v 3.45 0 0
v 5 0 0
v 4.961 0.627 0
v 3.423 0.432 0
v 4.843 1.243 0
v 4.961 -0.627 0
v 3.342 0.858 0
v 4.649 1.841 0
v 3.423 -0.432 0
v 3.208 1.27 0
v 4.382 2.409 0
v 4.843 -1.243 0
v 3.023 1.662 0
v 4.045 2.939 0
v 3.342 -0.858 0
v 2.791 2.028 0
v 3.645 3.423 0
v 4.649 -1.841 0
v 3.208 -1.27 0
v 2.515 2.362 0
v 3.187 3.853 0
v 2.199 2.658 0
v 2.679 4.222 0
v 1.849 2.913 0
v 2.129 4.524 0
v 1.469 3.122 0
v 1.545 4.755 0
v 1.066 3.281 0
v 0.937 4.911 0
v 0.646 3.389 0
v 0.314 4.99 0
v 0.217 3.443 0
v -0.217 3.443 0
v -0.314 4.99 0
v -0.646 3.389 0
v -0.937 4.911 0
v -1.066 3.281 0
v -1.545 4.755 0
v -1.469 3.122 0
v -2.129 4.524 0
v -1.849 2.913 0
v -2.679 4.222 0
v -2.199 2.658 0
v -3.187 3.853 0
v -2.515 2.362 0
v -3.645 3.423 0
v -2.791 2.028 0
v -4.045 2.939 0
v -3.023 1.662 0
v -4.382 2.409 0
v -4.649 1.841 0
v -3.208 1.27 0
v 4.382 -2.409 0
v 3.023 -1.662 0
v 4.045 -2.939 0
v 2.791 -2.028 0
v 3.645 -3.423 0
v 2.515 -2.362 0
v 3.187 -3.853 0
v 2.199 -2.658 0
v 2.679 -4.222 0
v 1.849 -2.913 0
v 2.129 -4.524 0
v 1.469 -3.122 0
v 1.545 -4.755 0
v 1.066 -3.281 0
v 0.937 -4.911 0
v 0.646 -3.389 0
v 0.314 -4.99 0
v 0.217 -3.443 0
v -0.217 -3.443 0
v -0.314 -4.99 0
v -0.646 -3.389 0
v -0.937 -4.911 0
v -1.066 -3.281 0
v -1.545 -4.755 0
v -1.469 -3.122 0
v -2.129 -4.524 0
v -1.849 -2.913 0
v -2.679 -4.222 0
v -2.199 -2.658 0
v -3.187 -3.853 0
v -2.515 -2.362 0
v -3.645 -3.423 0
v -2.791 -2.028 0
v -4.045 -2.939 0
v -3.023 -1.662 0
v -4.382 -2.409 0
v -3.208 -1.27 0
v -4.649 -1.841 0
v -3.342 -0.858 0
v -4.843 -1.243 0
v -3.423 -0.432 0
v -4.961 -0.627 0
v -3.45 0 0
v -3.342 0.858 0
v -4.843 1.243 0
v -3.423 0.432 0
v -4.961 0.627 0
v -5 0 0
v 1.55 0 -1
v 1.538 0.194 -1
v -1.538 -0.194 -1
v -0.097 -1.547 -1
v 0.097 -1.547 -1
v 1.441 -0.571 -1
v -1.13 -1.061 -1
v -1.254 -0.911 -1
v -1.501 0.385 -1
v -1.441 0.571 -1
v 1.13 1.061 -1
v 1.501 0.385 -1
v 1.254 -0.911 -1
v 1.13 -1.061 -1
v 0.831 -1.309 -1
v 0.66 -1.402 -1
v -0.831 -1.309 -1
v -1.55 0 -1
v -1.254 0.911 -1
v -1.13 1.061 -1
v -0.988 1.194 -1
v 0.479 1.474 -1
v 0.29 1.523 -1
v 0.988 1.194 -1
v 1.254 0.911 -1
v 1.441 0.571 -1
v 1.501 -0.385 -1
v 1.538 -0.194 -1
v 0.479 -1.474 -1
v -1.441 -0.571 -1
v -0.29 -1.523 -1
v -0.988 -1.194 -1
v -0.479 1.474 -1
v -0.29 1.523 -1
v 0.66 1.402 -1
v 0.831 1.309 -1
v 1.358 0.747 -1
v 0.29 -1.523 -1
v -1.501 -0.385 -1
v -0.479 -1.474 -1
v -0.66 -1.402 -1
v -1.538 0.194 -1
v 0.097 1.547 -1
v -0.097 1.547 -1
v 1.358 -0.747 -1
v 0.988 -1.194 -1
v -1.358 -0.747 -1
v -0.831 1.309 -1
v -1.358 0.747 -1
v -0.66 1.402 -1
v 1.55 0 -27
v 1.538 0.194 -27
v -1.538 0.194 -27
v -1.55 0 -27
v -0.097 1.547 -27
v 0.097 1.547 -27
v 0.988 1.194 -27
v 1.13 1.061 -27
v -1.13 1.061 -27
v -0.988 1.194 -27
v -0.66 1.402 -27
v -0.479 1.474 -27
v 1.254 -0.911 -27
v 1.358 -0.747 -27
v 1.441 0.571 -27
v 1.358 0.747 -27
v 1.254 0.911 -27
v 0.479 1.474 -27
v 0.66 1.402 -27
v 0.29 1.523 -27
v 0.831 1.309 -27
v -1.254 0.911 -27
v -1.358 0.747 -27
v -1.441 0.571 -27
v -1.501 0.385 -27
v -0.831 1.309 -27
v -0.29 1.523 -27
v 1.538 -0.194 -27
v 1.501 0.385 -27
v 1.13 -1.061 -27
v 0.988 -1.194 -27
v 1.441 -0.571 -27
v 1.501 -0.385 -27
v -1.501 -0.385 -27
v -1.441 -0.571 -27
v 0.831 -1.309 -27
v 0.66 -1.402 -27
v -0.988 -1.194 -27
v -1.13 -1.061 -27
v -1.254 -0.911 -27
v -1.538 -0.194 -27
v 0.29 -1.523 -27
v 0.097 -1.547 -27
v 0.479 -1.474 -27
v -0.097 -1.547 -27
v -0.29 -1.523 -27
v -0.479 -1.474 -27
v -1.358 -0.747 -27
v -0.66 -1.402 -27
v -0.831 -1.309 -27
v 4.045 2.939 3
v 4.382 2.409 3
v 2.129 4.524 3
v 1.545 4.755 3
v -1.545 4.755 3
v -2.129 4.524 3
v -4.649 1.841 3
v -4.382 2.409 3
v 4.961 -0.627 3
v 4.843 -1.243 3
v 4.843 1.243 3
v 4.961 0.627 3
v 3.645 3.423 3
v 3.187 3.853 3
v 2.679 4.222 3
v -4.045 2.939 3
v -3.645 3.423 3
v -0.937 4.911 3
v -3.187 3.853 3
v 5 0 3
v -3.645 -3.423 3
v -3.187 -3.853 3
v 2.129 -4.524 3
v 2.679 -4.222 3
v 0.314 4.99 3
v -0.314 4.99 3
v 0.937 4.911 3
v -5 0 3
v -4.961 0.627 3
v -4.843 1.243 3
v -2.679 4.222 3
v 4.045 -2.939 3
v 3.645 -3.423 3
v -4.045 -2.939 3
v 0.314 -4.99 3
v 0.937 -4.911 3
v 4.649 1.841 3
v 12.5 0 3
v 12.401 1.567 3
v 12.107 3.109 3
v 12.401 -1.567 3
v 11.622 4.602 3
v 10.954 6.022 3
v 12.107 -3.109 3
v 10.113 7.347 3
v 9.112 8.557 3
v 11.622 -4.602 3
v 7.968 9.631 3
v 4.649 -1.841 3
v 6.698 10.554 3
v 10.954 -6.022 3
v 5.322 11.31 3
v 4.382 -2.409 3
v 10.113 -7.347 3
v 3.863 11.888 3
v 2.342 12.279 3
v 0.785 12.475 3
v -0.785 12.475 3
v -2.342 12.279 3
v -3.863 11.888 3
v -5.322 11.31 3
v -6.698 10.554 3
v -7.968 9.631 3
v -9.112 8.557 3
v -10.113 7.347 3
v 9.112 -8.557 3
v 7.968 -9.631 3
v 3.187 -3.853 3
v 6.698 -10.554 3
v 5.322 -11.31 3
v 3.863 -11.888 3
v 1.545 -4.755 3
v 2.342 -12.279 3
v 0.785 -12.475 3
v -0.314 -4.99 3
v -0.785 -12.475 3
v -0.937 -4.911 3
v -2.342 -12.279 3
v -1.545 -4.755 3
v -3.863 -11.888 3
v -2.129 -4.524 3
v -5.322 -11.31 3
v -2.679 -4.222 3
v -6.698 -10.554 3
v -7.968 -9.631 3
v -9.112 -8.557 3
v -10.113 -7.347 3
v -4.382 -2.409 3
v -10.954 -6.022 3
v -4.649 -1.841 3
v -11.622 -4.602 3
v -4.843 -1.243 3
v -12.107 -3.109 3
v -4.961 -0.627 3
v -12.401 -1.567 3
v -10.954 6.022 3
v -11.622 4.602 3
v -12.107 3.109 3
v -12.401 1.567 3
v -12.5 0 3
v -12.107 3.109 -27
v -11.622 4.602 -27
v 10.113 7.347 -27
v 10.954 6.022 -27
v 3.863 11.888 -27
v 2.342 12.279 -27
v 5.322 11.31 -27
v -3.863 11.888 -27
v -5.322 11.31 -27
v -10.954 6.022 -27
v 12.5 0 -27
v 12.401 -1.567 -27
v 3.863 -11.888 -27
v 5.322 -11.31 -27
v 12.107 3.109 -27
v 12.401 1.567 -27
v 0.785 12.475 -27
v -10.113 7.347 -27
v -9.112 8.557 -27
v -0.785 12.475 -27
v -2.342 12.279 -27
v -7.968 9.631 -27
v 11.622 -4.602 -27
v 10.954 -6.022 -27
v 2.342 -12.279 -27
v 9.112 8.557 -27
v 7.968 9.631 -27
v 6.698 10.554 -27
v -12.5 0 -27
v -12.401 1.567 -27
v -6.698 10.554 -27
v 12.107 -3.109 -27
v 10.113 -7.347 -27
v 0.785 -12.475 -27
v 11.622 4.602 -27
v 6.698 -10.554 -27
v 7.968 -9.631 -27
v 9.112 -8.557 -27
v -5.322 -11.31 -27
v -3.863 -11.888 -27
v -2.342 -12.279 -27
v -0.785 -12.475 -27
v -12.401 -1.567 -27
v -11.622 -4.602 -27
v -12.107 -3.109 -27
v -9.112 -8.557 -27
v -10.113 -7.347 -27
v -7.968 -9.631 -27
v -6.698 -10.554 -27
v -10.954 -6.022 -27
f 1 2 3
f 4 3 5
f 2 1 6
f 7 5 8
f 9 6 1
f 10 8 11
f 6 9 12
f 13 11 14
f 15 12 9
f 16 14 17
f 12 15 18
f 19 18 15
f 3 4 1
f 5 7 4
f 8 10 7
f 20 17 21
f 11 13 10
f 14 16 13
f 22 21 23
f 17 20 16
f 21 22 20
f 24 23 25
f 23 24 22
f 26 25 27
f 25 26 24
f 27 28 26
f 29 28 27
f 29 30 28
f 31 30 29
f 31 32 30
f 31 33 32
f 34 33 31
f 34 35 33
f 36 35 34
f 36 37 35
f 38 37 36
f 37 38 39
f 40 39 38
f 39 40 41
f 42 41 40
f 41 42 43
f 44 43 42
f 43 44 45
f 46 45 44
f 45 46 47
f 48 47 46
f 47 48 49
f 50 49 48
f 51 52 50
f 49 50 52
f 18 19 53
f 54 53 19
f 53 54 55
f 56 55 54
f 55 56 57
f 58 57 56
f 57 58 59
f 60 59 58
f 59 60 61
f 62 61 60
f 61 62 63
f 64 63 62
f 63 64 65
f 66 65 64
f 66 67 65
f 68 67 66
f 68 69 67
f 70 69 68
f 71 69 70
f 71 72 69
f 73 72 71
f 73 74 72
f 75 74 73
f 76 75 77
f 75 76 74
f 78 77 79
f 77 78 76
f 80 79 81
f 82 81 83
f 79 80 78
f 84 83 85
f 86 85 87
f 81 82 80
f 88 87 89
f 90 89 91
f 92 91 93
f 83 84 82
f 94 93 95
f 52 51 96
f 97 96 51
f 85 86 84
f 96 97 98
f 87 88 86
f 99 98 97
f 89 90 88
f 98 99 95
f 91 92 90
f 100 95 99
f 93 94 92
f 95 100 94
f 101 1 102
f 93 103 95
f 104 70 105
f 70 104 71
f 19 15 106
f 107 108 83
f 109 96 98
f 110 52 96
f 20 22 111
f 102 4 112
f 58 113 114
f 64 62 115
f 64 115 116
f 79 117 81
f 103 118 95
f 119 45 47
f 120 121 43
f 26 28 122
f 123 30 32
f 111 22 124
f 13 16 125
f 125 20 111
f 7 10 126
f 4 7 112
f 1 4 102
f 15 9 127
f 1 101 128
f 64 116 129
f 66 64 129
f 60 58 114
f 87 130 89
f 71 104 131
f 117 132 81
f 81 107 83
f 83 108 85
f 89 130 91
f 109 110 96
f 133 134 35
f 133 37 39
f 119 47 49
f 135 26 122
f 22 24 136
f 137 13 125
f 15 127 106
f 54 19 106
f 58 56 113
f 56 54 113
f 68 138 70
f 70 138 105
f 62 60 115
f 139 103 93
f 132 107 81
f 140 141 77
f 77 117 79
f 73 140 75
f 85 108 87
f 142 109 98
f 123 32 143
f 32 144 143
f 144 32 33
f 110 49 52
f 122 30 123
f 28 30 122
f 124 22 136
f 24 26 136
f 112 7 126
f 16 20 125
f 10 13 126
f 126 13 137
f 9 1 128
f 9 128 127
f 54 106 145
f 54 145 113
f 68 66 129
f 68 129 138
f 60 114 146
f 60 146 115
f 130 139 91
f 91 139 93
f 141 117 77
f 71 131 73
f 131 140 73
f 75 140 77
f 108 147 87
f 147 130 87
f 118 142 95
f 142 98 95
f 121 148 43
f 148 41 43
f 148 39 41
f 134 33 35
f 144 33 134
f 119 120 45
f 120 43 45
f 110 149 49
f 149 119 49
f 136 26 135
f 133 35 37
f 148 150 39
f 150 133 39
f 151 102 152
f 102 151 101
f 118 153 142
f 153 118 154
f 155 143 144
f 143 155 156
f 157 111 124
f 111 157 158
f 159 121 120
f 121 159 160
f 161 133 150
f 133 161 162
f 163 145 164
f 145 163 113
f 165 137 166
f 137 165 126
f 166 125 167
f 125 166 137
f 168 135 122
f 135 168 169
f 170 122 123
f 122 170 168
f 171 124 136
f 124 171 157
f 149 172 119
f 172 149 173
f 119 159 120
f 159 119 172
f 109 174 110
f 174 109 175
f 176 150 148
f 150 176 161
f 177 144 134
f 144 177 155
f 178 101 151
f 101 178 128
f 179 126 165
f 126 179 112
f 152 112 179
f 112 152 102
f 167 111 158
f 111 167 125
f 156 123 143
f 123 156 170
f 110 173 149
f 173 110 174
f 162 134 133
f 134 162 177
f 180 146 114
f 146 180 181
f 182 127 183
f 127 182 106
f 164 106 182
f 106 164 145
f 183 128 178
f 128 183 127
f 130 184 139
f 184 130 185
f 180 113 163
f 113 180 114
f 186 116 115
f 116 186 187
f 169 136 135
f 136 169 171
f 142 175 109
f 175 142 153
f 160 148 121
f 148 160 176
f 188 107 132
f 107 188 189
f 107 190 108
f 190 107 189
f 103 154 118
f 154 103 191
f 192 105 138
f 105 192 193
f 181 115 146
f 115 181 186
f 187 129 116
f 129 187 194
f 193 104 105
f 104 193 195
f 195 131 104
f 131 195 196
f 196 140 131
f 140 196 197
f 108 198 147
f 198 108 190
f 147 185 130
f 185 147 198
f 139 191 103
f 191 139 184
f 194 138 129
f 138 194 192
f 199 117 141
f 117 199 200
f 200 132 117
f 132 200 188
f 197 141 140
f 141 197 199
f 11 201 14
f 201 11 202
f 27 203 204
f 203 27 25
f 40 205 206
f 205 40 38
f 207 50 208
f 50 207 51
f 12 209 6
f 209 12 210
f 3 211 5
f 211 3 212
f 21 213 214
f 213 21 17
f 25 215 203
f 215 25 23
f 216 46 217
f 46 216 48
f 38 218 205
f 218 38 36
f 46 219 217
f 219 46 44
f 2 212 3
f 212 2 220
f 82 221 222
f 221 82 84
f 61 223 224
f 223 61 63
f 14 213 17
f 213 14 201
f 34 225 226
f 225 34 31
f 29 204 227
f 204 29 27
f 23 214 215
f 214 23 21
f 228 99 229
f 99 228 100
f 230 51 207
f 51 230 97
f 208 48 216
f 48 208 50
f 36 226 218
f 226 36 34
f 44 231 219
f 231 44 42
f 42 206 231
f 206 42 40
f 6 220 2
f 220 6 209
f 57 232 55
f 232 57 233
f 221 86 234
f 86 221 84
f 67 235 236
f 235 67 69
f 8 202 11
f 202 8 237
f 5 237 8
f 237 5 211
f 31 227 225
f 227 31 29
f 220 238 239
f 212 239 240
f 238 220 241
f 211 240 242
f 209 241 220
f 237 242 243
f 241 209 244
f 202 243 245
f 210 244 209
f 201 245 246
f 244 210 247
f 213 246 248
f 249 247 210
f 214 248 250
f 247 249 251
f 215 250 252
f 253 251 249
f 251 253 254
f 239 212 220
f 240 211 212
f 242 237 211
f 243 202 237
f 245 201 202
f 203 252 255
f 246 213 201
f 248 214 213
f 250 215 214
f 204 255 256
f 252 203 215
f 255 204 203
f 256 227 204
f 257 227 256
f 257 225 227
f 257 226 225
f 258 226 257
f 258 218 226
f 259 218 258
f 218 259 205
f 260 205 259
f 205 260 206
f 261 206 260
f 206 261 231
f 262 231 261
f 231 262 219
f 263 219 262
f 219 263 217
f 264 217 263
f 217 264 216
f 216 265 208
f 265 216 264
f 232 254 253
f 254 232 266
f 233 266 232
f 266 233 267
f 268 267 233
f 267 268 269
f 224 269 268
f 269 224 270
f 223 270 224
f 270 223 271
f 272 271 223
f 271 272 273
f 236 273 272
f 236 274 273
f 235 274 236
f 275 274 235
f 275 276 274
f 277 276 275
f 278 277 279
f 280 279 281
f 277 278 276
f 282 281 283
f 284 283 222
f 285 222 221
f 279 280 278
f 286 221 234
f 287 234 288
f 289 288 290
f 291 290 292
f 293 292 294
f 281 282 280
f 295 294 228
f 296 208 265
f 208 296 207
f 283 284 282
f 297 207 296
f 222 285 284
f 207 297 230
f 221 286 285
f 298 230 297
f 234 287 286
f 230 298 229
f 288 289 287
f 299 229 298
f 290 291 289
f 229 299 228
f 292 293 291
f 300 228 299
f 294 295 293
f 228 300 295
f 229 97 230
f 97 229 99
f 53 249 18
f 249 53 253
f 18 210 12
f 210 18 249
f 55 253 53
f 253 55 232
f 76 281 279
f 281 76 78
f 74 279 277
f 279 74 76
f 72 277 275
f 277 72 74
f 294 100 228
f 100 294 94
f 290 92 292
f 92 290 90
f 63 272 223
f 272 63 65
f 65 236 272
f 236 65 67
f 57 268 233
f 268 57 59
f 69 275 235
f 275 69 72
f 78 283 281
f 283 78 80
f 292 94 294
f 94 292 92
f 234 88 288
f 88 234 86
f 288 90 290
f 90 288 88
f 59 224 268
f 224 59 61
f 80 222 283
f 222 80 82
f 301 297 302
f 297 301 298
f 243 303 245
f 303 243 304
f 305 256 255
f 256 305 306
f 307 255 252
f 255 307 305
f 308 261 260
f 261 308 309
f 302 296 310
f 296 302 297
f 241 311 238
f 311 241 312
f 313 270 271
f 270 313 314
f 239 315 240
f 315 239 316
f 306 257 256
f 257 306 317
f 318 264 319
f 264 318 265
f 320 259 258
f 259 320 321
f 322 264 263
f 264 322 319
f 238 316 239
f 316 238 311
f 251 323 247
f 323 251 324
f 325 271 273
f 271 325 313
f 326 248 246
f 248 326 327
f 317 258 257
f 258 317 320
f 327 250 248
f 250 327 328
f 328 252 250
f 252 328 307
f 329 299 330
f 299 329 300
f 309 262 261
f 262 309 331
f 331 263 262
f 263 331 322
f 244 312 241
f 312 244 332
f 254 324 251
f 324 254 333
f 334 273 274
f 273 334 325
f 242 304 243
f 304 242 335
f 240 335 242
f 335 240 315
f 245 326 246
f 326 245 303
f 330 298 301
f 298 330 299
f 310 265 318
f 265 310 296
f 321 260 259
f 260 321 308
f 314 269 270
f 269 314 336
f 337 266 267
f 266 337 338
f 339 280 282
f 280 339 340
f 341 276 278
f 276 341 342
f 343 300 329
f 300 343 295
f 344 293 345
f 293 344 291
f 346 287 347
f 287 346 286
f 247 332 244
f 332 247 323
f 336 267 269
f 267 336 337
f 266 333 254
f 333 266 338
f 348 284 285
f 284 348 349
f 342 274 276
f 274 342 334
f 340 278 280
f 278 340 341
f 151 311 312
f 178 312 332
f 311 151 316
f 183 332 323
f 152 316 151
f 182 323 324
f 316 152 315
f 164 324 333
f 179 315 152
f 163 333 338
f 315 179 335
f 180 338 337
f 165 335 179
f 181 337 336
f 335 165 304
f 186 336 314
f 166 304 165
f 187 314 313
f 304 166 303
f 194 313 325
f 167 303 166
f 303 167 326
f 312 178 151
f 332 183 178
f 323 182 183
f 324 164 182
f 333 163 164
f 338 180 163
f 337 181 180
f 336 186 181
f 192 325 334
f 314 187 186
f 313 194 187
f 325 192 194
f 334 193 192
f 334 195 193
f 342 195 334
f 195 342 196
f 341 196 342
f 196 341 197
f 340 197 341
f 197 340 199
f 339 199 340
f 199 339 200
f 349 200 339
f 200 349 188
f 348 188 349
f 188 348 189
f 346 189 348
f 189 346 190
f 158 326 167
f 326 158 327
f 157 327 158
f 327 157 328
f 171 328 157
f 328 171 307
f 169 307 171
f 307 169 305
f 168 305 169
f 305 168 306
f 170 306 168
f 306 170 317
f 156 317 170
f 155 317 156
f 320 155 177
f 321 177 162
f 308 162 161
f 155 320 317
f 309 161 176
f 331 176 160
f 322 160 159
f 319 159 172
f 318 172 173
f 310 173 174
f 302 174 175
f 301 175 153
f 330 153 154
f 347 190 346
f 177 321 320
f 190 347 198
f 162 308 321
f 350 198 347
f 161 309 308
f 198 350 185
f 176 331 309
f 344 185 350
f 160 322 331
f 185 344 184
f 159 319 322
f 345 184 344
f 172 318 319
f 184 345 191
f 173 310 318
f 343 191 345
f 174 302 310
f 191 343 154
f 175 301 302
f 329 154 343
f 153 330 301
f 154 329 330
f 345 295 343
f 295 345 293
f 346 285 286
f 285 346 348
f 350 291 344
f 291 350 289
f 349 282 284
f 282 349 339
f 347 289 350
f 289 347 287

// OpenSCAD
$fn = 50;

difference() {
	union() {
		translate(v = [0, 0, -27.0]) {
			cylinder(h = 30, r = 12.5);
		}
	}
	union() {
		translate(v = [0, 0, 0]) {
			rotate(a = [0, 0, 0]) {
				difference() {
					union() {
						translate(v = [0, 0, -30.0]) {
							cylinder(h = 30, r = 1.25);
						}
						translate(v = [0, 0, -1.0]) {
							cylinder(h = 1.0, r1 = 1.55, r2 = 3.45);
						}
						translate(v = [0, 0, -30.0]) {
							cylinder(h = 30, r = 1.55);
						}
						translate(v = [0, 0, -30.0]) {
							cylinder(h = 30, r = 1.25);
						}
					}
					union();
				}
			}
		}
		#cylinder(h = 3, r = 5.0);
	}
}
